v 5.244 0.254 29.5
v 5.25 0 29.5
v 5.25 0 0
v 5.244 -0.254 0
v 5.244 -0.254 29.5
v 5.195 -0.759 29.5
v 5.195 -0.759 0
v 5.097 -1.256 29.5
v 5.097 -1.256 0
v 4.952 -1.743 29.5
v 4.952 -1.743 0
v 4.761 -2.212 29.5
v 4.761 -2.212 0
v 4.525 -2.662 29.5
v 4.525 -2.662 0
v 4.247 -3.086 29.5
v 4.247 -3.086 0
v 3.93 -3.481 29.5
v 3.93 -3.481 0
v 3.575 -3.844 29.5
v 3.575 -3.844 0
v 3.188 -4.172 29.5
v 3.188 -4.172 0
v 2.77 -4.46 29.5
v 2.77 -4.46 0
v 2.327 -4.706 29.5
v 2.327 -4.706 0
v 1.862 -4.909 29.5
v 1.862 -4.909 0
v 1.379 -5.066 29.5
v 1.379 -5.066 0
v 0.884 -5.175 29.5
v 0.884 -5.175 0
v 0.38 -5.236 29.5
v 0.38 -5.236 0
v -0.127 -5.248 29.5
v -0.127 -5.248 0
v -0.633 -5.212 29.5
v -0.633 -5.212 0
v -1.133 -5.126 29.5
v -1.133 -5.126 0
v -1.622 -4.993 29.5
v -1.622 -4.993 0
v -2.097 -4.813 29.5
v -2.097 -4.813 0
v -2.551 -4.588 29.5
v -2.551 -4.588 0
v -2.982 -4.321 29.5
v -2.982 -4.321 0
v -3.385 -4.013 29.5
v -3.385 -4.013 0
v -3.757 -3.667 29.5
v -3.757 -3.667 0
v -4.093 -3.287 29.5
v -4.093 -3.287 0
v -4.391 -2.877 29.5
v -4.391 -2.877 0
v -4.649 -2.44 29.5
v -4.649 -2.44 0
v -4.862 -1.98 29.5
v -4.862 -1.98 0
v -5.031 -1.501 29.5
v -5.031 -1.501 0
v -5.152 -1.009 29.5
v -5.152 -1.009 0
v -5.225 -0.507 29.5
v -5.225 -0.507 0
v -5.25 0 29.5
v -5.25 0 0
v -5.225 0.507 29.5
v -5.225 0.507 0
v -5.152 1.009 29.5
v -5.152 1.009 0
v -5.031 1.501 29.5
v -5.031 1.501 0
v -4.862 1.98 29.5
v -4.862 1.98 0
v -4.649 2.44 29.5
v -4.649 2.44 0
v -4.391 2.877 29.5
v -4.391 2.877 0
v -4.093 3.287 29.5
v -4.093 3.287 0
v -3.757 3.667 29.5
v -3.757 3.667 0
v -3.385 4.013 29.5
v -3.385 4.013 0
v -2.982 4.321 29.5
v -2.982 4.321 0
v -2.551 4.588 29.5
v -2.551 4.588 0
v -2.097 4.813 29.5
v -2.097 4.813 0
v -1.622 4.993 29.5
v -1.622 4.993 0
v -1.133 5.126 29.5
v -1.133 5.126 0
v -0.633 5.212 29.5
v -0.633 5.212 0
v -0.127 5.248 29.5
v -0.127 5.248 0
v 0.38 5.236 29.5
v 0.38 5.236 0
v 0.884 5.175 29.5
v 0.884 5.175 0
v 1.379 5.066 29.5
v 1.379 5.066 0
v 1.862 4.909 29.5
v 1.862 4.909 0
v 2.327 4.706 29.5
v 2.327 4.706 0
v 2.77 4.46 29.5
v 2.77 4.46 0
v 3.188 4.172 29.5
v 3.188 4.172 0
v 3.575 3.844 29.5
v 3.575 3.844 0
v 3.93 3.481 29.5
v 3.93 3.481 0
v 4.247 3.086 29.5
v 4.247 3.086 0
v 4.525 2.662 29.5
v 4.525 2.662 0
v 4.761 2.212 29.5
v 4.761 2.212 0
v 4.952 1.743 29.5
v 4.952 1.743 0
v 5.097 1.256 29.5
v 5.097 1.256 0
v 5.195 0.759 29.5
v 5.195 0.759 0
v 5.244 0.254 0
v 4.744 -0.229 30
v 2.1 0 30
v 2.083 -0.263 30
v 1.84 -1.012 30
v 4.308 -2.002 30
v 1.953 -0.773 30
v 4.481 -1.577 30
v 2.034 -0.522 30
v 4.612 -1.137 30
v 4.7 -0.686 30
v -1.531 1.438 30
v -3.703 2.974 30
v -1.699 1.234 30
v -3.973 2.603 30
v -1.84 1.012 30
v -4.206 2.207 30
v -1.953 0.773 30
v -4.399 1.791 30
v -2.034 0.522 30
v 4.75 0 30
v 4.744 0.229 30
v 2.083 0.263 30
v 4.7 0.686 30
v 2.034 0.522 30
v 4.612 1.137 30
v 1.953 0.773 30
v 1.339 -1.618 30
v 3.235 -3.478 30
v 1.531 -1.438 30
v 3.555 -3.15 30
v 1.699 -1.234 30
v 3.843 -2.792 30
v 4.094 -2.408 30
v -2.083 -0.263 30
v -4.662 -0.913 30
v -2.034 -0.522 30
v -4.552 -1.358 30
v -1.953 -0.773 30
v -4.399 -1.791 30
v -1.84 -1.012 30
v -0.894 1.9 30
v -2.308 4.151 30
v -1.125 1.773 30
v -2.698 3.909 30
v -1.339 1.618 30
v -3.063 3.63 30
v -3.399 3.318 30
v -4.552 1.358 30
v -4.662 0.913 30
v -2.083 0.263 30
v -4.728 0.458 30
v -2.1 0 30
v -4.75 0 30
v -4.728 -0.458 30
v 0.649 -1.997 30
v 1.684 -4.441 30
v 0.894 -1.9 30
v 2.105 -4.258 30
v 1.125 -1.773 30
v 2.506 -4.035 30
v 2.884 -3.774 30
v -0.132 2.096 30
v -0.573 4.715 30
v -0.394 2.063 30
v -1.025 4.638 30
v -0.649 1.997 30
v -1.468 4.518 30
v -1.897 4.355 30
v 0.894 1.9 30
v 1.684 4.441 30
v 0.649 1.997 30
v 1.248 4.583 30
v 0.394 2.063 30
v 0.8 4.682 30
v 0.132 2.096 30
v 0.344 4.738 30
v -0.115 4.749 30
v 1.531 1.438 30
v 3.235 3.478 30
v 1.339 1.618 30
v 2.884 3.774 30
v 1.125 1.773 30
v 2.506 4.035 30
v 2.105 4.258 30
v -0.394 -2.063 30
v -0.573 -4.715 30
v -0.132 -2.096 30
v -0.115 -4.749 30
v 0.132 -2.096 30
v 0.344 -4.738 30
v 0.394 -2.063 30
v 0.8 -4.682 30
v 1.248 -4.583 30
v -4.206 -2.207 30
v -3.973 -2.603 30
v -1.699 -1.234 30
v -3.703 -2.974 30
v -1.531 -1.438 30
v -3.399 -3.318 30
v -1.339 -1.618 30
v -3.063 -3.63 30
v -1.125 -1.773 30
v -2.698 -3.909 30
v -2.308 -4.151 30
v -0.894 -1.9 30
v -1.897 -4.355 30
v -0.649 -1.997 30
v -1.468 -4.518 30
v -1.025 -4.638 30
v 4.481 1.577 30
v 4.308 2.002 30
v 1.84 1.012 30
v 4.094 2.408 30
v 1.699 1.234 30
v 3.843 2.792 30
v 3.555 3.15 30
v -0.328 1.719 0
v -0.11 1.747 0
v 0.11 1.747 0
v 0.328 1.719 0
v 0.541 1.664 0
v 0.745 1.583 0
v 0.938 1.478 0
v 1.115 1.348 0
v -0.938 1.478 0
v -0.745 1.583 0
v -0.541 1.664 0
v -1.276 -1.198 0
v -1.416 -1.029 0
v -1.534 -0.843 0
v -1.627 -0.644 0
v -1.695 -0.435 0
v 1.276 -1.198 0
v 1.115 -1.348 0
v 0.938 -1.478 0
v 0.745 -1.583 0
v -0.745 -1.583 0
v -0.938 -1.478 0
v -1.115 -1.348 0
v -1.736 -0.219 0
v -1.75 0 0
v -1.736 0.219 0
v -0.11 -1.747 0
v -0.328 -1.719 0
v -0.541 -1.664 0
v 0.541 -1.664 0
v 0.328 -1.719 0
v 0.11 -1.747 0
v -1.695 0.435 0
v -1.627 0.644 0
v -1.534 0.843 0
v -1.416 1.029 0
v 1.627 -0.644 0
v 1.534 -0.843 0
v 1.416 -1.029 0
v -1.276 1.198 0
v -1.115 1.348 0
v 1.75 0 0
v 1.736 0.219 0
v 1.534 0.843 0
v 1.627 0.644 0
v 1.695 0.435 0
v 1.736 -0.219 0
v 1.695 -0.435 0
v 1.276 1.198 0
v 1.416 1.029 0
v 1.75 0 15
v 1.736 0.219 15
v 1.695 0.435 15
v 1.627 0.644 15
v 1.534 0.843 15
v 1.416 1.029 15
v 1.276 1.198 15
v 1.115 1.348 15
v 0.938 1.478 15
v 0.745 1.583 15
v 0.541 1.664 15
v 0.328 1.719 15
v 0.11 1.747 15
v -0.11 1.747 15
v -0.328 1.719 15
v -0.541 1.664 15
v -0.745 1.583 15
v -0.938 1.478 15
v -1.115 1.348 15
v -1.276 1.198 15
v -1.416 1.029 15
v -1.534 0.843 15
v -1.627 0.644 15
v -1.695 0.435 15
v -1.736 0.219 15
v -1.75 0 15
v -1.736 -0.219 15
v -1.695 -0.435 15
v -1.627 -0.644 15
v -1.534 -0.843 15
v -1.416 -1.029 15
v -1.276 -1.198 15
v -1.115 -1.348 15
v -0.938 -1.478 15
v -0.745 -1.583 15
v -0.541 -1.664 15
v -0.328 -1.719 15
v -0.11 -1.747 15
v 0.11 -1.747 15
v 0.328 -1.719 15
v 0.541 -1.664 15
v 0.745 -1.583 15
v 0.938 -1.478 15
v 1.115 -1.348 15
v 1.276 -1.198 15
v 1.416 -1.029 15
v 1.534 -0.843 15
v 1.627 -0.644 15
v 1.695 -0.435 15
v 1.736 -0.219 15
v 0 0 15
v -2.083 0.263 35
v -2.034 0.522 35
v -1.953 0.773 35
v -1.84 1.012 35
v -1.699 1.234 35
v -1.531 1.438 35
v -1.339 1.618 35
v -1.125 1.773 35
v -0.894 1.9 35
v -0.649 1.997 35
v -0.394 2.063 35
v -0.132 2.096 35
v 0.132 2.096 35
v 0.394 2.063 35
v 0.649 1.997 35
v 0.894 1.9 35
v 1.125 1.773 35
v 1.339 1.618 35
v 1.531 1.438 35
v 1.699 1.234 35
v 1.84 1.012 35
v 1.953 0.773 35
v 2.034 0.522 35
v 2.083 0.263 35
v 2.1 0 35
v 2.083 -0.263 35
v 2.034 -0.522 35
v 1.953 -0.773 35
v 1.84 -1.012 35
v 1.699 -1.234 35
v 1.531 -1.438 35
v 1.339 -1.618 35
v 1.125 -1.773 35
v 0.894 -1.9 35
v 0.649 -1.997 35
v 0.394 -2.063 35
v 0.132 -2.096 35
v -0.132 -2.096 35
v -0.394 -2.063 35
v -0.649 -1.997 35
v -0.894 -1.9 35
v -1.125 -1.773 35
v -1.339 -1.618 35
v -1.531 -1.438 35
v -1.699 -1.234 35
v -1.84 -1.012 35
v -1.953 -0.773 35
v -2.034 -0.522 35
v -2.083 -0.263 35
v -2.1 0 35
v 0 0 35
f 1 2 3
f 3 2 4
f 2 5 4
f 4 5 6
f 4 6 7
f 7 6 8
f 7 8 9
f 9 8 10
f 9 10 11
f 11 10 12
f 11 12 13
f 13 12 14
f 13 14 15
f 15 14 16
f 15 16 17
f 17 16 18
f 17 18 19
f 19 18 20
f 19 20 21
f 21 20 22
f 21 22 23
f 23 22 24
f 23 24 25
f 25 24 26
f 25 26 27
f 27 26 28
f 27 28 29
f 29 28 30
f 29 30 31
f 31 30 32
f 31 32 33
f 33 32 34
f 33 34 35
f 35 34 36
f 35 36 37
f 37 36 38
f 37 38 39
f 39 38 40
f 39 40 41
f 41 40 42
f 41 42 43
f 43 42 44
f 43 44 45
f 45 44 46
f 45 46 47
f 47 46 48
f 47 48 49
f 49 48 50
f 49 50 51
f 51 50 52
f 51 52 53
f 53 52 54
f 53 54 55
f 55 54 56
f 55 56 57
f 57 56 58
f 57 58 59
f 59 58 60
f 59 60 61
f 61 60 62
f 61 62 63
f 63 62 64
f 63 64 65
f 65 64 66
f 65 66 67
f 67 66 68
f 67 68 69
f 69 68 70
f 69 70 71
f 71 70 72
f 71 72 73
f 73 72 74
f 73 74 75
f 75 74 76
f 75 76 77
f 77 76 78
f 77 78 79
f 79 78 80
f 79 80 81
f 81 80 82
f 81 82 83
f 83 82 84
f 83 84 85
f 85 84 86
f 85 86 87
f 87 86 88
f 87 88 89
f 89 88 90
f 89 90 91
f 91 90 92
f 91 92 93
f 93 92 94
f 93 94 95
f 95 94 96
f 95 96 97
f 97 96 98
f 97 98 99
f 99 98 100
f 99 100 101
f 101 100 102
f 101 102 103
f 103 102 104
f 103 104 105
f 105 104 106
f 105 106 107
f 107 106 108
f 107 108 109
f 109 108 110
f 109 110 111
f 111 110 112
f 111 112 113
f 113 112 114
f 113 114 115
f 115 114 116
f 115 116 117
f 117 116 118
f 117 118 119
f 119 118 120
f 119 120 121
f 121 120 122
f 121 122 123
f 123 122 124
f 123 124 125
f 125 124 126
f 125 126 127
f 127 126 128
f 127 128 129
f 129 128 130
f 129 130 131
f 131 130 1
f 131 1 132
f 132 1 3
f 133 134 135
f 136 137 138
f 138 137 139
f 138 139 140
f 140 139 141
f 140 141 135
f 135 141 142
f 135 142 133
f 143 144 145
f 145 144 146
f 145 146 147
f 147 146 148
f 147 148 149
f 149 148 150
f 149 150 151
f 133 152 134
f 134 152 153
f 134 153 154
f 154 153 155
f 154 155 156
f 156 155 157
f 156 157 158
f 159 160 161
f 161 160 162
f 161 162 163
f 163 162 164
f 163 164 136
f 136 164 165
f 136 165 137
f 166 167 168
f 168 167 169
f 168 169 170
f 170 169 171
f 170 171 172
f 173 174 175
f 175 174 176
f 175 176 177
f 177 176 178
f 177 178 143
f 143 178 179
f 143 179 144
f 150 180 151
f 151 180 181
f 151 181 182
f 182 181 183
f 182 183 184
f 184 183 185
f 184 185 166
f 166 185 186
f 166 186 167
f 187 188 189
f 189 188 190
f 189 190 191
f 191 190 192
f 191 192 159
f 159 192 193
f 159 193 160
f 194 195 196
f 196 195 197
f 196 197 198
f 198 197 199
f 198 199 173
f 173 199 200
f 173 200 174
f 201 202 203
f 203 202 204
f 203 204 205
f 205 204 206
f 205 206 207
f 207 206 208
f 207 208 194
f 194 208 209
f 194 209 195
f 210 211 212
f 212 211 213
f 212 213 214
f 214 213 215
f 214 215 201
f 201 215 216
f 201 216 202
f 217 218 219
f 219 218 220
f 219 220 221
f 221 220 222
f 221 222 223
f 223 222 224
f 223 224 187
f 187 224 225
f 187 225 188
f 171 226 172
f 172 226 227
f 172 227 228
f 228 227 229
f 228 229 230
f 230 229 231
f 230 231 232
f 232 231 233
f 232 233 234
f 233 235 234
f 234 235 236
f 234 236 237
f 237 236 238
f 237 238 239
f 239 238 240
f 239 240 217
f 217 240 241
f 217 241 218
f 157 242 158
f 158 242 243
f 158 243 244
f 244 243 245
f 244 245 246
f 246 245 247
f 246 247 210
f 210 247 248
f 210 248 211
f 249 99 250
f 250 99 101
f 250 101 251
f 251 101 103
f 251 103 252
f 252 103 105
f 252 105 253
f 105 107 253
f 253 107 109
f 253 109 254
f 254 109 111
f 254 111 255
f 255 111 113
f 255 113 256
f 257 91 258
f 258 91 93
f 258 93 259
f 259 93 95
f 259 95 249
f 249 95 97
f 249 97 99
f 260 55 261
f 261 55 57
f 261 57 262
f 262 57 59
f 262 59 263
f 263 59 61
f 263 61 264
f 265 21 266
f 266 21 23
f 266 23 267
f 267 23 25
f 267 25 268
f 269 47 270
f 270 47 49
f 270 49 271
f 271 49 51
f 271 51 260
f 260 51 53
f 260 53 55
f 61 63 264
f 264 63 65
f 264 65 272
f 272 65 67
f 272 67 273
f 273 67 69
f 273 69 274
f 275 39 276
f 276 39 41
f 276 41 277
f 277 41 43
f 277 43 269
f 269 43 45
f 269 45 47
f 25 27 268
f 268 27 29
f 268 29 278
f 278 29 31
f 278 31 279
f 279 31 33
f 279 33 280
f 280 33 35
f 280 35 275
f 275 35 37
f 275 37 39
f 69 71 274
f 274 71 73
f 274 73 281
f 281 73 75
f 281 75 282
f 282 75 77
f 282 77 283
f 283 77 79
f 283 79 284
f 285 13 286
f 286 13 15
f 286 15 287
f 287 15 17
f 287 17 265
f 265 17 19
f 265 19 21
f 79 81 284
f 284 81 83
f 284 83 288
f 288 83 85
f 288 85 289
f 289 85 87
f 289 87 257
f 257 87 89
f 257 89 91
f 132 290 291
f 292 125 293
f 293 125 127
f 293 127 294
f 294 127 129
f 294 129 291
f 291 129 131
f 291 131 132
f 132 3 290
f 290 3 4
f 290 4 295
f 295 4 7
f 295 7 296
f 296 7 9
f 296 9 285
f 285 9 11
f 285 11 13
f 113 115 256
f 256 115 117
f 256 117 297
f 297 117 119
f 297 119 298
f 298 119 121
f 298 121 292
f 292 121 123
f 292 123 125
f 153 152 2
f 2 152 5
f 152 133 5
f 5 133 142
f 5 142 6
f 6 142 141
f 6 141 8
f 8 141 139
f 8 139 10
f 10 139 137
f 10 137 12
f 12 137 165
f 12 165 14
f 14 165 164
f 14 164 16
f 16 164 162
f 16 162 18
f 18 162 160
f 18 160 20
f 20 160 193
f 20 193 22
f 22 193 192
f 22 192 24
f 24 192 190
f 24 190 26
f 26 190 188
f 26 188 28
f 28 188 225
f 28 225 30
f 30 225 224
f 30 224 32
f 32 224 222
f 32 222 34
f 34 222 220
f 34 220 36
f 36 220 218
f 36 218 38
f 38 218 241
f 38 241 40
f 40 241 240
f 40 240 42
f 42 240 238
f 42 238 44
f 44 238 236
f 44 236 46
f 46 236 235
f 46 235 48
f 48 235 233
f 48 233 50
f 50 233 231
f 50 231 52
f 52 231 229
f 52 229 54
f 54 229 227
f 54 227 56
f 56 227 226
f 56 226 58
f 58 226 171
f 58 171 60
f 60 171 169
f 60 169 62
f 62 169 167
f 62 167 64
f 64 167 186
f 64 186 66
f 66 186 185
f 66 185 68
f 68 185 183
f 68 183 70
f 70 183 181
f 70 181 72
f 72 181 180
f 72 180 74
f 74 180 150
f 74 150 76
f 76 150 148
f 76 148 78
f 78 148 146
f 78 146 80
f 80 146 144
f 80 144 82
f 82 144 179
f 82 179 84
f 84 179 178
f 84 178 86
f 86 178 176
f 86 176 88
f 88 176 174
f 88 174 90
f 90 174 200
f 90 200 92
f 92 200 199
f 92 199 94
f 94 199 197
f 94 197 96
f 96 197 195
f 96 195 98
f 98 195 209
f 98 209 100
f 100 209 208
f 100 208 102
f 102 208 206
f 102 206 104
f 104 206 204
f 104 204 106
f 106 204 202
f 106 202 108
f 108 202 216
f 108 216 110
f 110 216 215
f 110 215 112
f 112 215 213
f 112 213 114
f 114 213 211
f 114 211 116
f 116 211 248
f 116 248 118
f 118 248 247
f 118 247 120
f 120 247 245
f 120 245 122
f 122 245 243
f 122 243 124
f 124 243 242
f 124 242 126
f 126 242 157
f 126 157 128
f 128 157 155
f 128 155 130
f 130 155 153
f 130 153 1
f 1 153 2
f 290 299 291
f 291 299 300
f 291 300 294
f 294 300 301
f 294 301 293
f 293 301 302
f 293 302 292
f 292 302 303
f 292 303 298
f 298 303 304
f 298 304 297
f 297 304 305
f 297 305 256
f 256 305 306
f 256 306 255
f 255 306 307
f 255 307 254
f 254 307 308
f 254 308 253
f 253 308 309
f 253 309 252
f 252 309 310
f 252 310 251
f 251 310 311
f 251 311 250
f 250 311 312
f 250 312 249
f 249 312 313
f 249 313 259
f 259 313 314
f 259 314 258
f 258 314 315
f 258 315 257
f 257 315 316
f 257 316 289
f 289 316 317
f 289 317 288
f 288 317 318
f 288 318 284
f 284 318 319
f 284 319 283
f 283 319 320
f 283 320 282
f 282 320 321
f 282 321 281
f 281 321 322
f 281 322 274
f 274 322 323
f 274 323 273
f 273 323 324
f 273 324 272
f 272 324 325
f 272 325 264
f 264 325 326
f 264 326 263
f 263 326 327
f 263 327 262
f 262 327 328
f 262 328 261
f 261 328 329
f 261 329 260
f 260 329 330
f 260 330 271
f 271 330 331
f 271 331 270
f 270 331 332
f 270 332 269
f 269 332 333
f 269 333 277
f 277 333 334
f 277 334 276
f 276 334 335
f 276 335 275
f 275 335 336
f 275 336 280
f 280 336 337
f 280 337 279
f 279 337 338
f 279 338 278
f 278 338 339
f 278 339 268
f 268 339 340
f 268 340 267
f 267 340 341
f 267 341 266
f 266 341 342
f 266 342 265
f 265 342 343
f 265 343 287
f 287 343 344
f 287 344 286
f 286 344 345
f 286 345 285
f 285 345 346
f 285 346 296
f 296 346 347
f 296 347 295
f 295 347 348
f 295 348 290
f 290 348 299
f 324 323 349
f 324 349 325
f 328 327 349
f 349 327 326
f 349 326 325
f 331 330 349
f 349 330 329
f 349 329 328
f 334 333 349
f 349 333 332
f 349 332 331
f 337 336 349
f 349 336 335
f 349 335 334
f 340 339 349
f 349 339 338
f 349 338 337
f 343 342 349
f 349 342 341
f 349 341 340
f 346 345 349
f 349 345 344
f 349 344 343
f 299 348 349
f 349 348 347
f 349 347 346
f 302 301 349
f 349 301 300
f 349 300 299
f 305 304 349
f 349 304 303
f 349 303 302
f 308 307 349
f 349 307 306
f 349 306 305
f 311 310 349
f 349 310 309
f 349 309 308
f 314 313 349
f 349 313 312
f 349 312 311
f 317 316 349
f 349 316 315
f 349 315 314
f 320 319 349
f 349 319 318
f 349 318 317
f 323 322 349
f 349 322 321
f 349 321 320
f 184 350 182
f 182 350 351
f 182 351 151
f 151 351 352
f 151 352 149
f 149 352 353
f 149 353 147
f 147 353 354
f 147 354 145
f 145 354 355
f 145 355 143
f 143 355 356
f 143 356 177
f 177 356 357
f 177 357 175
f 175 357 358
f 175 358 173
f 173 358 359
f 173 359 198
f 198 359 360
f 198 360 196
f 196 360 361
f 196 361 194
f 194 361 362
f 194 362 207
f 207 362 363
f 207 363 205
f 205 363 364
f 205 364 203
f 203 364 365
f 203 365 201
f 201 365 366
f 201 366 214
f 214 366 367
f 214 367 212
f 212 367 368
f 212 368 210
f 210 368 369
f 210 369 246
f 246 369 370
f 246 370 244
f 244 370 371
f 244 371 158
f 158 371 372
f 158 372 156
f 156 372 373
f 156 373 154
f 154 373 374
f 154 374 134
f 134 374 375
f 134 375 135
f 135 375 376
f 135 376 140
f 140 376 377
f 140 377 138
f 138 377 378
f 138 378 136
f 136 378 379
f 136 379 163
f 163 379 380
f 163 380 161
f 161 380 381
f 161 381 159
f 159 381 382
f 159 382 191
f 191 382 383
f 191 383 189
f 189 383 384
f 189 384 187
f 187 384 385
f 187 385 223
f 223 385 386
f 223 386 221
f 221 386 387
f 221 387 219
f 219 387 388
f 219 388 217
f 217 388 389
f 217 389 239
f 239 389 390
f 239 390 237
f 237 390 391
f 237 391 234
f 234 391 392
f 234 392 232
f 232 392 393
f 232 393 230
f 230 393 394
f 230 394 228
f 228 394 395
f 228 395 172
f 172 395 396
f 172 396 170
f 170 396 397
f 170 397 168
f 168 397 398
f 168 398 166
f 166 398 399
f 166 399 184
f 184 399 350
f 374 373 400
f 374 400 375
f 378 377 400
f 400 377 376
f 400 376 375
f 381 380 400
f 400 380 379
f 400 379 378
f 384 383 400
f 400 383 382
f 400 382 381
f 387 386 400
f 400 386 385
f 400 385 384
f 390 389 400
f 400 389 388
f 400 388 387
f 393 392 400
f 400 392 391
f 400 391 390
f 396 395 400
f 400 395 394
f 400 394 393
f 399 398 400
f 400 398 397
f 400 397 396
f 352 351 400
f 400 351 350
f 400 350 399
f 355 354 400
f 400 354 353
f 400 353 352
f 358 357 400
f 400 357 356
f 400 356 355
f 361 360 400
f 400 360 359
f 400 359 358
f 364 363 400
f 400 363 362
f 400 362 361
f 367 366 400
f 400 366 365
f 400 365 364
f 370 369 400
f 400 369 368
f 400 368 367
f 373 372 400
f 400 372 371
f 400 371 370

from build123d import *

# Parameters (mm, degrees)
ESQUISSE1_R                  = 5.25
BOSS_EXTRU_1_DEPTH           = 30
CHANFREIN1_SIZE              = 0.5
ESQUISSE2_R                  = 1.75
ENL_V_MAT_EXTRU_1_DEPTH      = 1
ENL_V_MAT_EXTRU_1_DEPTH_BACK = 15
ESQUISSE4_R                  = 2.1
BOSS_EXTRU_2_DEPTH           = 5


with BuildPart() as part:
    # Esquisse1 → Boss.-Extru.1 (new body)
    with BuildSketch(Plane.XY):
        Circle(ESQUISSE1_R)
    extrude(amount=BOSS_EXTRU_1_DEPTH)

    # Chanfrein1
    chanfrein1_edges = [part.edges().sort_by_distance(p)[0] for p in [
        (-5.25, 0, 30),
    ]]
    chamfer(chanfrein1_edges, length=CHANFREIN1_SIZE)

    # Esquisse2 → Enlèv. mat.-Extru.1 (cut, two sides)
    with BuildSketch(Plane(origin=(0, 0, 0), x_dir=(-1, 0, 0), z_dir=(0, 0, -1))) as enl_v_mat_extru_1_sk:
        Circle(ESQUISSE2_R)
    extrude(amount=ENL_V_MAT_EXTRU_1_DEPTH, mode=Mode.SUBTRACT)
    extrude(enl_v_mat_extru_1_sk.sketch, amount=-ENL_V_MAT_EXTRU_1_DEPTH_BACK, mode=Mode.SUBTRACT)

    # Esquisse4 → Boss.-Extru.2 (add)
    with BuildSketch(Plane.XY.offset(30)):
        Circle(ESQUISSE4_R)
    extrude(amount=BOSS_EXTRU_2_DEPTH)


solid = part.part
